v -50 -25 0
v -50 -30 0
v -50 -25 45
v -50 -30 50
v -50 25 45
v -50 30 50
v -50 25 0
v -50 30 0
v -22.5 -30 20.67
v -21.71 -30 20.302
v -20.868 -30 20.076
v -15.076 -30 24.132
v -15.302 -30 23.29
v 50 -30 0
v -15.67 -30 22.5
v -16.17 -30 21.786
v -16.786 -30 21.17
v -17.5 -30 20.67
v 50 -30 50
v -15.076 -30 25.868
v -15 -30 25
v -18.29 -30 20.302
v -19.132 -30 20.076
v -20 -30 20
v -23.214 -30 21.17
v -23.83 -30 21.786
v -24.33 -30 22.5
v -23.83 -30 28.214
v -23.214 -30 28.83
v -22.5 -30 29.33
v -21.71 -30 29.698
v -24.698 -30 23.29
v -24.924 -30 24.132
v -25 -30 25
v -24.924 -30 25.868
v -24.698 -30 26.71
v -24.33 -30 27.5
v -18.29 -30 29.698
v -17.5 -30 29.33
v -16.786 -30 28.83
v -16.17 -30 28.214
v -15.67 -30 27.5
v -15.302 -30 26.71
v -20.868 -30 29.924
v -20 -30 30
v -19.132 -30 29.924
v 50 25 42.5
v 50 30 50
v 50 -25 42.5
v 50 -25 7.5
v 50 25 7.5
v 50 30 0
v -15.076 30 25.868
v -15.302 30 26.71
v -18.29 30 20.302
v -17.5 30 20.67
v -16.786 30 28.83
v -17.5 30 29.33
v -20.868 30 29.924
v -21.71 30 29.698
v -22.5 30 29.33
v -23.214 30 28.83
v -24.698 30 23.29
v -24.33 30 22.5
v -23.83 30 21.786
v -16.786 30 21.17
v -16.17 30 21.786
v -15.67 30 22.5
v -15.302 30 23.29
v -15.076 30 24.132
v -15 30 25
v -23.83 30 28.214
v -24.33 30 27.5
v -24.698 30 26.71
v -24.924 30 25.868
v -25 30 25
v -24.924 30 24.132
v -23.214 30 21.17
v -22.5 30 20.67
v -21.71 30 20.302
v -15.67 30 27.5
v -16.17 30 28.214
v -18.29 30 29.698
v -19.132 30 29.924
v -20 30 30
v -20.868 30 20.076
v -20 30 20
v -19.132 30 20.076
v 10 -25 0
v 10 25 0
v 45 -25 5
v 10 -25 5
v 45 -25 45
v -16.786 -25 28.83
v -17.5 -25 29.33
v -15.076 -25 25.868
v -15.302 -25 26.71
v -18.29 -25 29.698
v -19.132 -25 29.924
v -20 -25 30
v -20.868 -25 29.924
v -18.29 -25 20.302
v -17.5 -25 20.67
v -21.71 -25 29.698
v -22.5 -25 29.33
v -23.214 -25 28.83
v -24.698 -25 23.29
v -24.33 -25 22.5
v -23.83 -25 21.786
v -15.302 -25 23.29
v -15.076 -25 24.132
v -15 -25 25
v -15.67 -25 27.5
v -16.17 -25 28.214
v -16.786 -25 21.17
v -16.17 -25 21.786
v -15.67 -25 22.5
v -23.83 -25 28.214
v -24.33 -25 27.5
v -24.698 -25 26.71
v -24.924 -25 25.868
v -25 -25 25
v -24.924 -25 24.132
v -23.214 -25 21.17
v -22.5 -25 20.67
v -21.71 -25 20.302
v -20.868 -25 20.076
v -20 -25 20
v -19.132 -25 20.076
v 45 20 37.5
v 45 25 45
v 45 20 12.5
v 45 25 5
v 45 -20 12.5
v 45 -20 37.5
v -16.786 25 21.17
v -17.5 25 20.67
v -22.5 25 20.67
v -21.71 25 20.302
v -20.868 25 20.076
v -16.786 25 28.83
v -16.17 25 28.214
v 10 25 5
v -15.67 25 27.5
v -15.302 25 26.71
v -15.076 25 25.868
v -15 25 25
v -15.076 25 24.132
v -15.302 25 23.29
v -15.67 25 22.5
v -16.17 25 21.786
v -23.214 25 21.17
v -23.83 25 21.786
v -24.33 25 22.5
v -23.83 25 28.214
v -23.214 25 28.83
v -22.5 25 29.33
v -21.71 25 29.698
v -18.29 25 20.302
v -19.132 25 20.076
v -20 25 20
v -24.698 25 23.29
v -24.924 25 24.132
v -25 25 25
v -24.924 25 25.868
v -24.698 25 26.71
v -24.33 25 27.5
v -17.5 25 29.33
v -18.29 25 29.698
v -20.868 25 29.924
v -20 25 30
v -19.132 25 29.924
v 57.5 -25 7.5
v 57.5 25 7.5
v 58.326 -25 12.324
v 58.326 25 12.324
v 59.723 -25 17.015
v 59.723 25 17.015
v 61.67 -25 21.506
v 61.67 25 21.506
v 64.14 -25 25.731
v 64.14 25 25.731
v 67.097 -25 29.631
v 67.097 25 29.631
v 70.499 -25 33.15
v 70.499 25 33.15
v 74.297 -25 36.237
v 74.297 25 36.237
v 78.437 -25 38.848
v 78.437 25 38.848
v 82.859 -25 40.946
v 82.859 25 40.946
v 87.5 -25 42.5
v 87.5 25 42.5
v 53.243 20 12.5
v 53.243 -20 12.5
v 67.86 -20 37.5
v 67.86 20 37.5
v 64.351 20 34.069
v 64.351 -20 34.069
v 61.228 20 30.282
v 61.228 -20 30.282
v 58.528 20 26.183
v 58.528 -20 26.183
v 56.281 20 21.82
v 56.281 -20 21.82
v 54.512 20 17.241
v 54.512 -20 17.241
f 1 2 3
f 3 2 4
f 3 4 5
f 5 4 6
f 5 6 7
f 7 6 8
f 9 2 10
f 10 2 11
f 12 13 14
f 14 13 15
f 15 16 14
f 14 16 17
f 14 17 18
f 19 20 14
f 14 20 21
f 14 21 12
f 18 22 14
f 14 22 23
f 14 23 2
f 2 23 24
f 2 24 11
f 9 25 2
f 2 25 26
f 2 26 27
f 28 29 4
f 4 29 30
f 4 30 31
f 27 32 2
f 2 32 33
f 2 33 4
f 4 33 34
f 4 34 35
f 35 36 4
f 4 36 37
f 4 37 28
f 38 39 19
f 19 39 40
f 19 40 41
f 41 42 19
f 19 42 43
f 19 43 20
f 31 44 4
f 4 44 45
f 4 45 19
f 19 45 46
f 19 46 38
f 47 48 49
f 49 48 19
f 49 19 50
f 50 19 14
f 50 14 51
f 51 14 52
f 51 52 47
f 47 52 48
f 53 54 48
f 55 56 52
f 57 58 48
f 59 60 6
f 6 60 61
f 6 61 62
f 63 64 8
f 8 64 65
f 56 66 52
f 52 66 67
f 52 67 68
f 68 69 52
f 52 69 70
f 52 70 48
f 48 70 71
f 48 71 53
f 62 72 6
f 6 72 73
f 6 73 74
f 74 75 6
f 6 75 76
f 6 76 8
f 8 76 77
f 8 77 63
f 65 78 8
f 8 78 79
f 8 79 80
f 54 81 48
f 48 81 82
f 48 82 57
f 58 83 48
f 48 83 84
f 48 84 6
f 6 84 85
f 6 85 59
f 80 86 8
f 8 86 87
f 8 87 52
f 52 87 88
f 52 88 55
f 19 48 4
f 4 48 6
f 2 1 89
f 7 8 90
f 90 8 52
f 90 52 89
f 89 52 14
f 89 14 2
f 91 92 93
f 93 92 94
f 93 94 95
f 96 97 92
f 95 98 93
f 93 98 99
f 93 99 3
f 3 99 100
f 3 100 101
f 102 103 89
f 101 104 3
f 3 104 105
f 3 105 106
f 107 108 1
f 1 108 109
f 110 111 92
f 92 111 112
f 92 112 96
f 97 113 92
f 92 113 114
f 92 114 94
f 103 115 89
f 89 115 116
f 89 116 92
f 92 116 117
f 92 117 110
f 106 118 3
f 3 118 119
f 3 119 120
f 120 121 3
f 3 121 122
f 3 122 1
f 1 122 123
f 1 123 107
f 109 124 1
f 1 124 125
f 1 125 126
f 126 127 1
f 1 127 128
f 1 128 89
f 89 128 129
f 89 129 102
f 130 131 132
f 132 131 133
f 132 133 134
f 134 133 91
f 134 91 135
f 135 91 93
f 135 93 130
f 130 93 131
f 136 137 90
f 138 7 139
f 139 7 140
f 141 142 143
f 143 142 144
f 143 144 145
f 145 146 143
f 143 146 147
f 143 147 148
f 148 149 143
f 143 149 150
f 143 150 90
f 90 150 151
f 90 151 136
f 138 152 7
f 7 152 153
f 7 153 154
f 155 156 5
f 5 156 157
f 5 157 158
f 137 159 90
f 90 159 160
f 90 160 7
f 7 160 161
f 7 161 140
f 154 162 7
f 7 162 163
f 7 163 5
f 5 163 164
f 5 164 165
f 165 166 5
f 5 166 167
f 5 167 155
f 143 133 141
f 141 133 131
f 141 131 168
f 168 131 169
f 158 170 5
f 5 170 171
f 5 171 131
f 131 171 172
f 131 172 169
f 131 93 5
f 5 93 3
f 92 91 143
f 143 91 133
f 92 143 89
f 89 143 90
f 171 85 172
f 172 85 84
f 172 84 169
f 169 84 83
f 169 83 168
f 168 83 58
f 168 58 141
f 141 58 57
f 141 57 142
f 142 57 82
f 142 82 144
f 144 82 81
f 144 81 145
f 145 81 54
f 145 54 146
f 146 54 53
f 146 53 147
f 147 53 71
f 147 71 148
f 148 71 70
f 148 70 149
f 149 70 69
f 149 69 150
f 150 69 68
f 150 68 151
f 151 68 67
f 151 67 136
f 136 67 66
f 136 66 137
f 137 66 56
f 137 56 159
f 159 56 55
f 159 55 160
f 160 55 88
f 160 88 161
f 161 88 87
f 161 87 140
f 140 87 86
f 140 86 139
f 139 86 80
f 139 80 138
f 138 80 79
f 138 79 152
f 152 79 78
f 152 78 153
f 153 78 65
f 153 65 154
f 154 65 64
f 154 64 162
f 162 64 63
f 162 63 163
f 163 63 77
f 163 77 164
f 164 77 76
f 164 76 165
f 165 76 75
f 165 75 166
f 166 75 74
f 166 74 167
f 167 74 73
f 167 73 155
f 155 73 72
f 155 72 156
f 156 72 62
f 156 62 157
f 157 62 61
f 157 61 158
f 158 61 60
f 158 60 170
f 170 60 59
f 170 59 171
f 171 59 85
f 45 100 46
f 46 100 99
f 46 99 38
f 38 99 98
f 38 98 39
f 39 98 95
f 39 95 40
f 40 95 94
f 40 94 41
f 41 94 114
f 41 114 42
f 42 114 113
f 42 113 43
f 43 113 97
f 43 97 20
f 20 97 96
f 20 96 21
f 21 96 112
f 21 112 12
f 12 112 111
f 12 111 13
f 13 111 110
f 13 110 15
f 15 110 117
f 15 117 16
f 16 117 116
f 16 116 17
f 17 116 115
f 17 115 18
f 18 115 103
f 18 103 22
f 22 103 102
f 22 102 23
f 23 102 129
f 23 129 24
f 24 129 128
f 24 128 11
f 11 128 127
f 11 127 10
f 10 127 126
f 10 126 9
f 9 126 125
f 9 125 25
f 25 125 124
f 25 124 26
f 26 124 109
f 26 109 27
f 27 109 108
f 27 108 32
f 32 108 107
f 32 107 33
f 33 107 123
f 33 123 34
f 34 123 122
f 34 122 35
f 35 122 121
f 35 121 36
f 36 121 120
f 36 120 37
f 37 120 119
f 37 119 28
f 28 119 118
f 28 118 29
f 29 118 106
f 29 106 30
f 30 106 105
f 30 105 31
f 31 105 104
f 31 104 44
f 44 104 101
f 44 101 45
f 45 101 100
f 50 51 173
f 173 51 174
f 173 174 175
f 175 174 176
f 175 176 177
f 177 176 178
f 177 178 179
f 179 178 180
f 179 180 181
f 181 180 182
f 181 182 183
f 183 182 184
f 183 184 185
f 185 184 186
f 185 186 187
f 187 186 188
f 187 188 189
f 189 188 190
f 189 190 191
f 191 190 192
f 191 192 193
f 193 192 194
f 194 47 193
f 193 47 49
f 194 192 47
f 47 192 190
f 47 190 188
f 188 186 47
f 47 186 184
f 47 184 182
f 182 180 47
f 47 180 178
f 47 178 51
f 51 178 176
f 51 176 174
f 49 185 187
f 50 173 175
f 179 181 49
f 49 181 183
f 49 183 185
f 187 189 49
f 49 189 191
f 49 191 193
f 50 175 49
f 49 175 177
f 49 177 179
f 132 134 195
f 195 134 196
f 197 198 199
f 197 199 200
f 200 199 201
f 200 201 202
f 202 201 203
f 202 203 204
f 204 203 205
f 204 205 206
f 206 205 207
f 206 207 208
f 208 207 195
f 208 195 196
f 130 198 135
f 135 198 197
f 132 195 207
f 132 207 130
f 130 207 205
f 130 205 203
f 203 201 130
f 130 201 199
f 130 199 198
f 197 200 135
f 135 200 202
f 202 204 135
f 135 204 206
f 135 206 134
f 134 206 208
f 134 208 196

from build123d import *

# Parameters (mm, degrees)
SKETCH2_W               = 100
SKETCH2_H               = 60
BOSS_EXTRUDE1_DEPTH     = 50
SHELL1_T                = -5
SKETCH4_W               = 60
SKETCH4_H               = 50
CUT_EXTRUDE1_DEPTH      = 10
CUT_EXTRUDE2_DEPTH      = 90.582364336
CUT_EXTRUDE2_DEPTH_BACK = 90.582364336
SKETCH5_R               = 5
BOSS_EXTRUDE2_DEPTH     = 60
SKETCH15_W              = 5
SKETCH15_H              = 50
CUT_EXTRUDE4_DEPTH      = 37.5
SHELL3_START            = -20
SHELL3_DEPTH            = 40


# Read off the part's stored shape, not the designer's step: Shell3
with BuildPart() as part:
    # Sketch2 → Boss-Extrude1 (new body)
    with BuildSketch(Plane.XY):
        Rectangle(SKETCH2_W, SKETCH2_H)
    extrude(amount=BOSS_EXTRUDE1_DEPTH)

    # Shell1
    shell1_openings = [part.faces().sort_by_distance(p)[0] for p in [
        (-50, 0, 25),
    ]]
    offset(amount=SHELL1_T, openings=shell1_openings, kind=Kind.INTERSECTION)

    # Sketch4 → Cut-Extrude1 (cut)
    with BuildSketch(Plane.XY.offset(5)):
        with Locations((-20, 0)):
            Rectangle(SKETCH4_W, SKETCH4_H)
    extrude(amount=-CUT_EXTRUDE1_DEPTH, mode=Mode.SUBTRACT)

    # Sketch5 → Cut-Extrude2 (cut, two sides: drawn at the far end of the back side and taken through both)
    with BuildSketch(Plane(origin=(0, -25, 0), x_dir=(1, 0, 0), z_dir=(0, 1, 0)).offset(-CUT_EXTRUDE2_DEPTH_BACK)):
        with Locations(Location((-20, -25, 0), (0, 0, 270))):
            Circle(SKETCH5_R)
    extrude(amount=CUT_EXTRUDE2_DEPTH + CUT_EXTRUDE2_DEPTH_BACK, mode=Mode.SUBTRACT)

    # Sketch13 → Boss-Extrude2 (add)
    with BuildSketch(Plane(origin=(0, 30, 0), x_dir=(1, 0, 0), z_dir=(0, 1, 0))):
        with BuildLine():
            Line((50, -42.5), (57.5, -42.5))
            Line((57.5, -42.5), (87.5, -42.5))
            ThreePointArc((87.5, -42.5), (67.096938471, -29.631195597), (57.5, -7.5))
            Line((57.5, -7.5), (50, -7.5))
            Line((50, -7.5), (50, -42.5))
        make_face()
    extrude(amount=-BOSS_EXTRUDE2_DEPTH)

    # Sketch15 → Cut-Extrude4 (cut)
    with BuildSketch(Plane.YZ.offset(87.5)):
        with Locations((-27.5, 25)):
            Rectangle(SKETCH15_W, SKETCH15_H)
        with Locations((27.5, 25)):
            Rectangle(SKETCH15_W, SKETCH15_H)
    extrude(amount=-CUT_EXTRUDE4_DEPTH, mode=Mode.SUBTRACT)

    # Shell3 outline → Shell3 (cut)
    with BuildSketch(Plane(origin=(0, 0, 0), x_dir=(1, 0, 0), z_dir=(0, 1, 0)).offset(SHELL3_START)):
        with BuildLine():
            Line((53.243409838, -12.5), (45, -12.5))
            Line((45, -12.5), (45, -37.5))
            Line((45, -37.5), (67.860272771, -37.5))
            ThreePointArc((67.860272771, -37.5), (58.527827688, -26.183389184), (53.243409838, -12.5))
        make_face()
    extrude(amount=SHELL3_DEPTH, mode=Mode.SUBTRACT)


solid = part.part
